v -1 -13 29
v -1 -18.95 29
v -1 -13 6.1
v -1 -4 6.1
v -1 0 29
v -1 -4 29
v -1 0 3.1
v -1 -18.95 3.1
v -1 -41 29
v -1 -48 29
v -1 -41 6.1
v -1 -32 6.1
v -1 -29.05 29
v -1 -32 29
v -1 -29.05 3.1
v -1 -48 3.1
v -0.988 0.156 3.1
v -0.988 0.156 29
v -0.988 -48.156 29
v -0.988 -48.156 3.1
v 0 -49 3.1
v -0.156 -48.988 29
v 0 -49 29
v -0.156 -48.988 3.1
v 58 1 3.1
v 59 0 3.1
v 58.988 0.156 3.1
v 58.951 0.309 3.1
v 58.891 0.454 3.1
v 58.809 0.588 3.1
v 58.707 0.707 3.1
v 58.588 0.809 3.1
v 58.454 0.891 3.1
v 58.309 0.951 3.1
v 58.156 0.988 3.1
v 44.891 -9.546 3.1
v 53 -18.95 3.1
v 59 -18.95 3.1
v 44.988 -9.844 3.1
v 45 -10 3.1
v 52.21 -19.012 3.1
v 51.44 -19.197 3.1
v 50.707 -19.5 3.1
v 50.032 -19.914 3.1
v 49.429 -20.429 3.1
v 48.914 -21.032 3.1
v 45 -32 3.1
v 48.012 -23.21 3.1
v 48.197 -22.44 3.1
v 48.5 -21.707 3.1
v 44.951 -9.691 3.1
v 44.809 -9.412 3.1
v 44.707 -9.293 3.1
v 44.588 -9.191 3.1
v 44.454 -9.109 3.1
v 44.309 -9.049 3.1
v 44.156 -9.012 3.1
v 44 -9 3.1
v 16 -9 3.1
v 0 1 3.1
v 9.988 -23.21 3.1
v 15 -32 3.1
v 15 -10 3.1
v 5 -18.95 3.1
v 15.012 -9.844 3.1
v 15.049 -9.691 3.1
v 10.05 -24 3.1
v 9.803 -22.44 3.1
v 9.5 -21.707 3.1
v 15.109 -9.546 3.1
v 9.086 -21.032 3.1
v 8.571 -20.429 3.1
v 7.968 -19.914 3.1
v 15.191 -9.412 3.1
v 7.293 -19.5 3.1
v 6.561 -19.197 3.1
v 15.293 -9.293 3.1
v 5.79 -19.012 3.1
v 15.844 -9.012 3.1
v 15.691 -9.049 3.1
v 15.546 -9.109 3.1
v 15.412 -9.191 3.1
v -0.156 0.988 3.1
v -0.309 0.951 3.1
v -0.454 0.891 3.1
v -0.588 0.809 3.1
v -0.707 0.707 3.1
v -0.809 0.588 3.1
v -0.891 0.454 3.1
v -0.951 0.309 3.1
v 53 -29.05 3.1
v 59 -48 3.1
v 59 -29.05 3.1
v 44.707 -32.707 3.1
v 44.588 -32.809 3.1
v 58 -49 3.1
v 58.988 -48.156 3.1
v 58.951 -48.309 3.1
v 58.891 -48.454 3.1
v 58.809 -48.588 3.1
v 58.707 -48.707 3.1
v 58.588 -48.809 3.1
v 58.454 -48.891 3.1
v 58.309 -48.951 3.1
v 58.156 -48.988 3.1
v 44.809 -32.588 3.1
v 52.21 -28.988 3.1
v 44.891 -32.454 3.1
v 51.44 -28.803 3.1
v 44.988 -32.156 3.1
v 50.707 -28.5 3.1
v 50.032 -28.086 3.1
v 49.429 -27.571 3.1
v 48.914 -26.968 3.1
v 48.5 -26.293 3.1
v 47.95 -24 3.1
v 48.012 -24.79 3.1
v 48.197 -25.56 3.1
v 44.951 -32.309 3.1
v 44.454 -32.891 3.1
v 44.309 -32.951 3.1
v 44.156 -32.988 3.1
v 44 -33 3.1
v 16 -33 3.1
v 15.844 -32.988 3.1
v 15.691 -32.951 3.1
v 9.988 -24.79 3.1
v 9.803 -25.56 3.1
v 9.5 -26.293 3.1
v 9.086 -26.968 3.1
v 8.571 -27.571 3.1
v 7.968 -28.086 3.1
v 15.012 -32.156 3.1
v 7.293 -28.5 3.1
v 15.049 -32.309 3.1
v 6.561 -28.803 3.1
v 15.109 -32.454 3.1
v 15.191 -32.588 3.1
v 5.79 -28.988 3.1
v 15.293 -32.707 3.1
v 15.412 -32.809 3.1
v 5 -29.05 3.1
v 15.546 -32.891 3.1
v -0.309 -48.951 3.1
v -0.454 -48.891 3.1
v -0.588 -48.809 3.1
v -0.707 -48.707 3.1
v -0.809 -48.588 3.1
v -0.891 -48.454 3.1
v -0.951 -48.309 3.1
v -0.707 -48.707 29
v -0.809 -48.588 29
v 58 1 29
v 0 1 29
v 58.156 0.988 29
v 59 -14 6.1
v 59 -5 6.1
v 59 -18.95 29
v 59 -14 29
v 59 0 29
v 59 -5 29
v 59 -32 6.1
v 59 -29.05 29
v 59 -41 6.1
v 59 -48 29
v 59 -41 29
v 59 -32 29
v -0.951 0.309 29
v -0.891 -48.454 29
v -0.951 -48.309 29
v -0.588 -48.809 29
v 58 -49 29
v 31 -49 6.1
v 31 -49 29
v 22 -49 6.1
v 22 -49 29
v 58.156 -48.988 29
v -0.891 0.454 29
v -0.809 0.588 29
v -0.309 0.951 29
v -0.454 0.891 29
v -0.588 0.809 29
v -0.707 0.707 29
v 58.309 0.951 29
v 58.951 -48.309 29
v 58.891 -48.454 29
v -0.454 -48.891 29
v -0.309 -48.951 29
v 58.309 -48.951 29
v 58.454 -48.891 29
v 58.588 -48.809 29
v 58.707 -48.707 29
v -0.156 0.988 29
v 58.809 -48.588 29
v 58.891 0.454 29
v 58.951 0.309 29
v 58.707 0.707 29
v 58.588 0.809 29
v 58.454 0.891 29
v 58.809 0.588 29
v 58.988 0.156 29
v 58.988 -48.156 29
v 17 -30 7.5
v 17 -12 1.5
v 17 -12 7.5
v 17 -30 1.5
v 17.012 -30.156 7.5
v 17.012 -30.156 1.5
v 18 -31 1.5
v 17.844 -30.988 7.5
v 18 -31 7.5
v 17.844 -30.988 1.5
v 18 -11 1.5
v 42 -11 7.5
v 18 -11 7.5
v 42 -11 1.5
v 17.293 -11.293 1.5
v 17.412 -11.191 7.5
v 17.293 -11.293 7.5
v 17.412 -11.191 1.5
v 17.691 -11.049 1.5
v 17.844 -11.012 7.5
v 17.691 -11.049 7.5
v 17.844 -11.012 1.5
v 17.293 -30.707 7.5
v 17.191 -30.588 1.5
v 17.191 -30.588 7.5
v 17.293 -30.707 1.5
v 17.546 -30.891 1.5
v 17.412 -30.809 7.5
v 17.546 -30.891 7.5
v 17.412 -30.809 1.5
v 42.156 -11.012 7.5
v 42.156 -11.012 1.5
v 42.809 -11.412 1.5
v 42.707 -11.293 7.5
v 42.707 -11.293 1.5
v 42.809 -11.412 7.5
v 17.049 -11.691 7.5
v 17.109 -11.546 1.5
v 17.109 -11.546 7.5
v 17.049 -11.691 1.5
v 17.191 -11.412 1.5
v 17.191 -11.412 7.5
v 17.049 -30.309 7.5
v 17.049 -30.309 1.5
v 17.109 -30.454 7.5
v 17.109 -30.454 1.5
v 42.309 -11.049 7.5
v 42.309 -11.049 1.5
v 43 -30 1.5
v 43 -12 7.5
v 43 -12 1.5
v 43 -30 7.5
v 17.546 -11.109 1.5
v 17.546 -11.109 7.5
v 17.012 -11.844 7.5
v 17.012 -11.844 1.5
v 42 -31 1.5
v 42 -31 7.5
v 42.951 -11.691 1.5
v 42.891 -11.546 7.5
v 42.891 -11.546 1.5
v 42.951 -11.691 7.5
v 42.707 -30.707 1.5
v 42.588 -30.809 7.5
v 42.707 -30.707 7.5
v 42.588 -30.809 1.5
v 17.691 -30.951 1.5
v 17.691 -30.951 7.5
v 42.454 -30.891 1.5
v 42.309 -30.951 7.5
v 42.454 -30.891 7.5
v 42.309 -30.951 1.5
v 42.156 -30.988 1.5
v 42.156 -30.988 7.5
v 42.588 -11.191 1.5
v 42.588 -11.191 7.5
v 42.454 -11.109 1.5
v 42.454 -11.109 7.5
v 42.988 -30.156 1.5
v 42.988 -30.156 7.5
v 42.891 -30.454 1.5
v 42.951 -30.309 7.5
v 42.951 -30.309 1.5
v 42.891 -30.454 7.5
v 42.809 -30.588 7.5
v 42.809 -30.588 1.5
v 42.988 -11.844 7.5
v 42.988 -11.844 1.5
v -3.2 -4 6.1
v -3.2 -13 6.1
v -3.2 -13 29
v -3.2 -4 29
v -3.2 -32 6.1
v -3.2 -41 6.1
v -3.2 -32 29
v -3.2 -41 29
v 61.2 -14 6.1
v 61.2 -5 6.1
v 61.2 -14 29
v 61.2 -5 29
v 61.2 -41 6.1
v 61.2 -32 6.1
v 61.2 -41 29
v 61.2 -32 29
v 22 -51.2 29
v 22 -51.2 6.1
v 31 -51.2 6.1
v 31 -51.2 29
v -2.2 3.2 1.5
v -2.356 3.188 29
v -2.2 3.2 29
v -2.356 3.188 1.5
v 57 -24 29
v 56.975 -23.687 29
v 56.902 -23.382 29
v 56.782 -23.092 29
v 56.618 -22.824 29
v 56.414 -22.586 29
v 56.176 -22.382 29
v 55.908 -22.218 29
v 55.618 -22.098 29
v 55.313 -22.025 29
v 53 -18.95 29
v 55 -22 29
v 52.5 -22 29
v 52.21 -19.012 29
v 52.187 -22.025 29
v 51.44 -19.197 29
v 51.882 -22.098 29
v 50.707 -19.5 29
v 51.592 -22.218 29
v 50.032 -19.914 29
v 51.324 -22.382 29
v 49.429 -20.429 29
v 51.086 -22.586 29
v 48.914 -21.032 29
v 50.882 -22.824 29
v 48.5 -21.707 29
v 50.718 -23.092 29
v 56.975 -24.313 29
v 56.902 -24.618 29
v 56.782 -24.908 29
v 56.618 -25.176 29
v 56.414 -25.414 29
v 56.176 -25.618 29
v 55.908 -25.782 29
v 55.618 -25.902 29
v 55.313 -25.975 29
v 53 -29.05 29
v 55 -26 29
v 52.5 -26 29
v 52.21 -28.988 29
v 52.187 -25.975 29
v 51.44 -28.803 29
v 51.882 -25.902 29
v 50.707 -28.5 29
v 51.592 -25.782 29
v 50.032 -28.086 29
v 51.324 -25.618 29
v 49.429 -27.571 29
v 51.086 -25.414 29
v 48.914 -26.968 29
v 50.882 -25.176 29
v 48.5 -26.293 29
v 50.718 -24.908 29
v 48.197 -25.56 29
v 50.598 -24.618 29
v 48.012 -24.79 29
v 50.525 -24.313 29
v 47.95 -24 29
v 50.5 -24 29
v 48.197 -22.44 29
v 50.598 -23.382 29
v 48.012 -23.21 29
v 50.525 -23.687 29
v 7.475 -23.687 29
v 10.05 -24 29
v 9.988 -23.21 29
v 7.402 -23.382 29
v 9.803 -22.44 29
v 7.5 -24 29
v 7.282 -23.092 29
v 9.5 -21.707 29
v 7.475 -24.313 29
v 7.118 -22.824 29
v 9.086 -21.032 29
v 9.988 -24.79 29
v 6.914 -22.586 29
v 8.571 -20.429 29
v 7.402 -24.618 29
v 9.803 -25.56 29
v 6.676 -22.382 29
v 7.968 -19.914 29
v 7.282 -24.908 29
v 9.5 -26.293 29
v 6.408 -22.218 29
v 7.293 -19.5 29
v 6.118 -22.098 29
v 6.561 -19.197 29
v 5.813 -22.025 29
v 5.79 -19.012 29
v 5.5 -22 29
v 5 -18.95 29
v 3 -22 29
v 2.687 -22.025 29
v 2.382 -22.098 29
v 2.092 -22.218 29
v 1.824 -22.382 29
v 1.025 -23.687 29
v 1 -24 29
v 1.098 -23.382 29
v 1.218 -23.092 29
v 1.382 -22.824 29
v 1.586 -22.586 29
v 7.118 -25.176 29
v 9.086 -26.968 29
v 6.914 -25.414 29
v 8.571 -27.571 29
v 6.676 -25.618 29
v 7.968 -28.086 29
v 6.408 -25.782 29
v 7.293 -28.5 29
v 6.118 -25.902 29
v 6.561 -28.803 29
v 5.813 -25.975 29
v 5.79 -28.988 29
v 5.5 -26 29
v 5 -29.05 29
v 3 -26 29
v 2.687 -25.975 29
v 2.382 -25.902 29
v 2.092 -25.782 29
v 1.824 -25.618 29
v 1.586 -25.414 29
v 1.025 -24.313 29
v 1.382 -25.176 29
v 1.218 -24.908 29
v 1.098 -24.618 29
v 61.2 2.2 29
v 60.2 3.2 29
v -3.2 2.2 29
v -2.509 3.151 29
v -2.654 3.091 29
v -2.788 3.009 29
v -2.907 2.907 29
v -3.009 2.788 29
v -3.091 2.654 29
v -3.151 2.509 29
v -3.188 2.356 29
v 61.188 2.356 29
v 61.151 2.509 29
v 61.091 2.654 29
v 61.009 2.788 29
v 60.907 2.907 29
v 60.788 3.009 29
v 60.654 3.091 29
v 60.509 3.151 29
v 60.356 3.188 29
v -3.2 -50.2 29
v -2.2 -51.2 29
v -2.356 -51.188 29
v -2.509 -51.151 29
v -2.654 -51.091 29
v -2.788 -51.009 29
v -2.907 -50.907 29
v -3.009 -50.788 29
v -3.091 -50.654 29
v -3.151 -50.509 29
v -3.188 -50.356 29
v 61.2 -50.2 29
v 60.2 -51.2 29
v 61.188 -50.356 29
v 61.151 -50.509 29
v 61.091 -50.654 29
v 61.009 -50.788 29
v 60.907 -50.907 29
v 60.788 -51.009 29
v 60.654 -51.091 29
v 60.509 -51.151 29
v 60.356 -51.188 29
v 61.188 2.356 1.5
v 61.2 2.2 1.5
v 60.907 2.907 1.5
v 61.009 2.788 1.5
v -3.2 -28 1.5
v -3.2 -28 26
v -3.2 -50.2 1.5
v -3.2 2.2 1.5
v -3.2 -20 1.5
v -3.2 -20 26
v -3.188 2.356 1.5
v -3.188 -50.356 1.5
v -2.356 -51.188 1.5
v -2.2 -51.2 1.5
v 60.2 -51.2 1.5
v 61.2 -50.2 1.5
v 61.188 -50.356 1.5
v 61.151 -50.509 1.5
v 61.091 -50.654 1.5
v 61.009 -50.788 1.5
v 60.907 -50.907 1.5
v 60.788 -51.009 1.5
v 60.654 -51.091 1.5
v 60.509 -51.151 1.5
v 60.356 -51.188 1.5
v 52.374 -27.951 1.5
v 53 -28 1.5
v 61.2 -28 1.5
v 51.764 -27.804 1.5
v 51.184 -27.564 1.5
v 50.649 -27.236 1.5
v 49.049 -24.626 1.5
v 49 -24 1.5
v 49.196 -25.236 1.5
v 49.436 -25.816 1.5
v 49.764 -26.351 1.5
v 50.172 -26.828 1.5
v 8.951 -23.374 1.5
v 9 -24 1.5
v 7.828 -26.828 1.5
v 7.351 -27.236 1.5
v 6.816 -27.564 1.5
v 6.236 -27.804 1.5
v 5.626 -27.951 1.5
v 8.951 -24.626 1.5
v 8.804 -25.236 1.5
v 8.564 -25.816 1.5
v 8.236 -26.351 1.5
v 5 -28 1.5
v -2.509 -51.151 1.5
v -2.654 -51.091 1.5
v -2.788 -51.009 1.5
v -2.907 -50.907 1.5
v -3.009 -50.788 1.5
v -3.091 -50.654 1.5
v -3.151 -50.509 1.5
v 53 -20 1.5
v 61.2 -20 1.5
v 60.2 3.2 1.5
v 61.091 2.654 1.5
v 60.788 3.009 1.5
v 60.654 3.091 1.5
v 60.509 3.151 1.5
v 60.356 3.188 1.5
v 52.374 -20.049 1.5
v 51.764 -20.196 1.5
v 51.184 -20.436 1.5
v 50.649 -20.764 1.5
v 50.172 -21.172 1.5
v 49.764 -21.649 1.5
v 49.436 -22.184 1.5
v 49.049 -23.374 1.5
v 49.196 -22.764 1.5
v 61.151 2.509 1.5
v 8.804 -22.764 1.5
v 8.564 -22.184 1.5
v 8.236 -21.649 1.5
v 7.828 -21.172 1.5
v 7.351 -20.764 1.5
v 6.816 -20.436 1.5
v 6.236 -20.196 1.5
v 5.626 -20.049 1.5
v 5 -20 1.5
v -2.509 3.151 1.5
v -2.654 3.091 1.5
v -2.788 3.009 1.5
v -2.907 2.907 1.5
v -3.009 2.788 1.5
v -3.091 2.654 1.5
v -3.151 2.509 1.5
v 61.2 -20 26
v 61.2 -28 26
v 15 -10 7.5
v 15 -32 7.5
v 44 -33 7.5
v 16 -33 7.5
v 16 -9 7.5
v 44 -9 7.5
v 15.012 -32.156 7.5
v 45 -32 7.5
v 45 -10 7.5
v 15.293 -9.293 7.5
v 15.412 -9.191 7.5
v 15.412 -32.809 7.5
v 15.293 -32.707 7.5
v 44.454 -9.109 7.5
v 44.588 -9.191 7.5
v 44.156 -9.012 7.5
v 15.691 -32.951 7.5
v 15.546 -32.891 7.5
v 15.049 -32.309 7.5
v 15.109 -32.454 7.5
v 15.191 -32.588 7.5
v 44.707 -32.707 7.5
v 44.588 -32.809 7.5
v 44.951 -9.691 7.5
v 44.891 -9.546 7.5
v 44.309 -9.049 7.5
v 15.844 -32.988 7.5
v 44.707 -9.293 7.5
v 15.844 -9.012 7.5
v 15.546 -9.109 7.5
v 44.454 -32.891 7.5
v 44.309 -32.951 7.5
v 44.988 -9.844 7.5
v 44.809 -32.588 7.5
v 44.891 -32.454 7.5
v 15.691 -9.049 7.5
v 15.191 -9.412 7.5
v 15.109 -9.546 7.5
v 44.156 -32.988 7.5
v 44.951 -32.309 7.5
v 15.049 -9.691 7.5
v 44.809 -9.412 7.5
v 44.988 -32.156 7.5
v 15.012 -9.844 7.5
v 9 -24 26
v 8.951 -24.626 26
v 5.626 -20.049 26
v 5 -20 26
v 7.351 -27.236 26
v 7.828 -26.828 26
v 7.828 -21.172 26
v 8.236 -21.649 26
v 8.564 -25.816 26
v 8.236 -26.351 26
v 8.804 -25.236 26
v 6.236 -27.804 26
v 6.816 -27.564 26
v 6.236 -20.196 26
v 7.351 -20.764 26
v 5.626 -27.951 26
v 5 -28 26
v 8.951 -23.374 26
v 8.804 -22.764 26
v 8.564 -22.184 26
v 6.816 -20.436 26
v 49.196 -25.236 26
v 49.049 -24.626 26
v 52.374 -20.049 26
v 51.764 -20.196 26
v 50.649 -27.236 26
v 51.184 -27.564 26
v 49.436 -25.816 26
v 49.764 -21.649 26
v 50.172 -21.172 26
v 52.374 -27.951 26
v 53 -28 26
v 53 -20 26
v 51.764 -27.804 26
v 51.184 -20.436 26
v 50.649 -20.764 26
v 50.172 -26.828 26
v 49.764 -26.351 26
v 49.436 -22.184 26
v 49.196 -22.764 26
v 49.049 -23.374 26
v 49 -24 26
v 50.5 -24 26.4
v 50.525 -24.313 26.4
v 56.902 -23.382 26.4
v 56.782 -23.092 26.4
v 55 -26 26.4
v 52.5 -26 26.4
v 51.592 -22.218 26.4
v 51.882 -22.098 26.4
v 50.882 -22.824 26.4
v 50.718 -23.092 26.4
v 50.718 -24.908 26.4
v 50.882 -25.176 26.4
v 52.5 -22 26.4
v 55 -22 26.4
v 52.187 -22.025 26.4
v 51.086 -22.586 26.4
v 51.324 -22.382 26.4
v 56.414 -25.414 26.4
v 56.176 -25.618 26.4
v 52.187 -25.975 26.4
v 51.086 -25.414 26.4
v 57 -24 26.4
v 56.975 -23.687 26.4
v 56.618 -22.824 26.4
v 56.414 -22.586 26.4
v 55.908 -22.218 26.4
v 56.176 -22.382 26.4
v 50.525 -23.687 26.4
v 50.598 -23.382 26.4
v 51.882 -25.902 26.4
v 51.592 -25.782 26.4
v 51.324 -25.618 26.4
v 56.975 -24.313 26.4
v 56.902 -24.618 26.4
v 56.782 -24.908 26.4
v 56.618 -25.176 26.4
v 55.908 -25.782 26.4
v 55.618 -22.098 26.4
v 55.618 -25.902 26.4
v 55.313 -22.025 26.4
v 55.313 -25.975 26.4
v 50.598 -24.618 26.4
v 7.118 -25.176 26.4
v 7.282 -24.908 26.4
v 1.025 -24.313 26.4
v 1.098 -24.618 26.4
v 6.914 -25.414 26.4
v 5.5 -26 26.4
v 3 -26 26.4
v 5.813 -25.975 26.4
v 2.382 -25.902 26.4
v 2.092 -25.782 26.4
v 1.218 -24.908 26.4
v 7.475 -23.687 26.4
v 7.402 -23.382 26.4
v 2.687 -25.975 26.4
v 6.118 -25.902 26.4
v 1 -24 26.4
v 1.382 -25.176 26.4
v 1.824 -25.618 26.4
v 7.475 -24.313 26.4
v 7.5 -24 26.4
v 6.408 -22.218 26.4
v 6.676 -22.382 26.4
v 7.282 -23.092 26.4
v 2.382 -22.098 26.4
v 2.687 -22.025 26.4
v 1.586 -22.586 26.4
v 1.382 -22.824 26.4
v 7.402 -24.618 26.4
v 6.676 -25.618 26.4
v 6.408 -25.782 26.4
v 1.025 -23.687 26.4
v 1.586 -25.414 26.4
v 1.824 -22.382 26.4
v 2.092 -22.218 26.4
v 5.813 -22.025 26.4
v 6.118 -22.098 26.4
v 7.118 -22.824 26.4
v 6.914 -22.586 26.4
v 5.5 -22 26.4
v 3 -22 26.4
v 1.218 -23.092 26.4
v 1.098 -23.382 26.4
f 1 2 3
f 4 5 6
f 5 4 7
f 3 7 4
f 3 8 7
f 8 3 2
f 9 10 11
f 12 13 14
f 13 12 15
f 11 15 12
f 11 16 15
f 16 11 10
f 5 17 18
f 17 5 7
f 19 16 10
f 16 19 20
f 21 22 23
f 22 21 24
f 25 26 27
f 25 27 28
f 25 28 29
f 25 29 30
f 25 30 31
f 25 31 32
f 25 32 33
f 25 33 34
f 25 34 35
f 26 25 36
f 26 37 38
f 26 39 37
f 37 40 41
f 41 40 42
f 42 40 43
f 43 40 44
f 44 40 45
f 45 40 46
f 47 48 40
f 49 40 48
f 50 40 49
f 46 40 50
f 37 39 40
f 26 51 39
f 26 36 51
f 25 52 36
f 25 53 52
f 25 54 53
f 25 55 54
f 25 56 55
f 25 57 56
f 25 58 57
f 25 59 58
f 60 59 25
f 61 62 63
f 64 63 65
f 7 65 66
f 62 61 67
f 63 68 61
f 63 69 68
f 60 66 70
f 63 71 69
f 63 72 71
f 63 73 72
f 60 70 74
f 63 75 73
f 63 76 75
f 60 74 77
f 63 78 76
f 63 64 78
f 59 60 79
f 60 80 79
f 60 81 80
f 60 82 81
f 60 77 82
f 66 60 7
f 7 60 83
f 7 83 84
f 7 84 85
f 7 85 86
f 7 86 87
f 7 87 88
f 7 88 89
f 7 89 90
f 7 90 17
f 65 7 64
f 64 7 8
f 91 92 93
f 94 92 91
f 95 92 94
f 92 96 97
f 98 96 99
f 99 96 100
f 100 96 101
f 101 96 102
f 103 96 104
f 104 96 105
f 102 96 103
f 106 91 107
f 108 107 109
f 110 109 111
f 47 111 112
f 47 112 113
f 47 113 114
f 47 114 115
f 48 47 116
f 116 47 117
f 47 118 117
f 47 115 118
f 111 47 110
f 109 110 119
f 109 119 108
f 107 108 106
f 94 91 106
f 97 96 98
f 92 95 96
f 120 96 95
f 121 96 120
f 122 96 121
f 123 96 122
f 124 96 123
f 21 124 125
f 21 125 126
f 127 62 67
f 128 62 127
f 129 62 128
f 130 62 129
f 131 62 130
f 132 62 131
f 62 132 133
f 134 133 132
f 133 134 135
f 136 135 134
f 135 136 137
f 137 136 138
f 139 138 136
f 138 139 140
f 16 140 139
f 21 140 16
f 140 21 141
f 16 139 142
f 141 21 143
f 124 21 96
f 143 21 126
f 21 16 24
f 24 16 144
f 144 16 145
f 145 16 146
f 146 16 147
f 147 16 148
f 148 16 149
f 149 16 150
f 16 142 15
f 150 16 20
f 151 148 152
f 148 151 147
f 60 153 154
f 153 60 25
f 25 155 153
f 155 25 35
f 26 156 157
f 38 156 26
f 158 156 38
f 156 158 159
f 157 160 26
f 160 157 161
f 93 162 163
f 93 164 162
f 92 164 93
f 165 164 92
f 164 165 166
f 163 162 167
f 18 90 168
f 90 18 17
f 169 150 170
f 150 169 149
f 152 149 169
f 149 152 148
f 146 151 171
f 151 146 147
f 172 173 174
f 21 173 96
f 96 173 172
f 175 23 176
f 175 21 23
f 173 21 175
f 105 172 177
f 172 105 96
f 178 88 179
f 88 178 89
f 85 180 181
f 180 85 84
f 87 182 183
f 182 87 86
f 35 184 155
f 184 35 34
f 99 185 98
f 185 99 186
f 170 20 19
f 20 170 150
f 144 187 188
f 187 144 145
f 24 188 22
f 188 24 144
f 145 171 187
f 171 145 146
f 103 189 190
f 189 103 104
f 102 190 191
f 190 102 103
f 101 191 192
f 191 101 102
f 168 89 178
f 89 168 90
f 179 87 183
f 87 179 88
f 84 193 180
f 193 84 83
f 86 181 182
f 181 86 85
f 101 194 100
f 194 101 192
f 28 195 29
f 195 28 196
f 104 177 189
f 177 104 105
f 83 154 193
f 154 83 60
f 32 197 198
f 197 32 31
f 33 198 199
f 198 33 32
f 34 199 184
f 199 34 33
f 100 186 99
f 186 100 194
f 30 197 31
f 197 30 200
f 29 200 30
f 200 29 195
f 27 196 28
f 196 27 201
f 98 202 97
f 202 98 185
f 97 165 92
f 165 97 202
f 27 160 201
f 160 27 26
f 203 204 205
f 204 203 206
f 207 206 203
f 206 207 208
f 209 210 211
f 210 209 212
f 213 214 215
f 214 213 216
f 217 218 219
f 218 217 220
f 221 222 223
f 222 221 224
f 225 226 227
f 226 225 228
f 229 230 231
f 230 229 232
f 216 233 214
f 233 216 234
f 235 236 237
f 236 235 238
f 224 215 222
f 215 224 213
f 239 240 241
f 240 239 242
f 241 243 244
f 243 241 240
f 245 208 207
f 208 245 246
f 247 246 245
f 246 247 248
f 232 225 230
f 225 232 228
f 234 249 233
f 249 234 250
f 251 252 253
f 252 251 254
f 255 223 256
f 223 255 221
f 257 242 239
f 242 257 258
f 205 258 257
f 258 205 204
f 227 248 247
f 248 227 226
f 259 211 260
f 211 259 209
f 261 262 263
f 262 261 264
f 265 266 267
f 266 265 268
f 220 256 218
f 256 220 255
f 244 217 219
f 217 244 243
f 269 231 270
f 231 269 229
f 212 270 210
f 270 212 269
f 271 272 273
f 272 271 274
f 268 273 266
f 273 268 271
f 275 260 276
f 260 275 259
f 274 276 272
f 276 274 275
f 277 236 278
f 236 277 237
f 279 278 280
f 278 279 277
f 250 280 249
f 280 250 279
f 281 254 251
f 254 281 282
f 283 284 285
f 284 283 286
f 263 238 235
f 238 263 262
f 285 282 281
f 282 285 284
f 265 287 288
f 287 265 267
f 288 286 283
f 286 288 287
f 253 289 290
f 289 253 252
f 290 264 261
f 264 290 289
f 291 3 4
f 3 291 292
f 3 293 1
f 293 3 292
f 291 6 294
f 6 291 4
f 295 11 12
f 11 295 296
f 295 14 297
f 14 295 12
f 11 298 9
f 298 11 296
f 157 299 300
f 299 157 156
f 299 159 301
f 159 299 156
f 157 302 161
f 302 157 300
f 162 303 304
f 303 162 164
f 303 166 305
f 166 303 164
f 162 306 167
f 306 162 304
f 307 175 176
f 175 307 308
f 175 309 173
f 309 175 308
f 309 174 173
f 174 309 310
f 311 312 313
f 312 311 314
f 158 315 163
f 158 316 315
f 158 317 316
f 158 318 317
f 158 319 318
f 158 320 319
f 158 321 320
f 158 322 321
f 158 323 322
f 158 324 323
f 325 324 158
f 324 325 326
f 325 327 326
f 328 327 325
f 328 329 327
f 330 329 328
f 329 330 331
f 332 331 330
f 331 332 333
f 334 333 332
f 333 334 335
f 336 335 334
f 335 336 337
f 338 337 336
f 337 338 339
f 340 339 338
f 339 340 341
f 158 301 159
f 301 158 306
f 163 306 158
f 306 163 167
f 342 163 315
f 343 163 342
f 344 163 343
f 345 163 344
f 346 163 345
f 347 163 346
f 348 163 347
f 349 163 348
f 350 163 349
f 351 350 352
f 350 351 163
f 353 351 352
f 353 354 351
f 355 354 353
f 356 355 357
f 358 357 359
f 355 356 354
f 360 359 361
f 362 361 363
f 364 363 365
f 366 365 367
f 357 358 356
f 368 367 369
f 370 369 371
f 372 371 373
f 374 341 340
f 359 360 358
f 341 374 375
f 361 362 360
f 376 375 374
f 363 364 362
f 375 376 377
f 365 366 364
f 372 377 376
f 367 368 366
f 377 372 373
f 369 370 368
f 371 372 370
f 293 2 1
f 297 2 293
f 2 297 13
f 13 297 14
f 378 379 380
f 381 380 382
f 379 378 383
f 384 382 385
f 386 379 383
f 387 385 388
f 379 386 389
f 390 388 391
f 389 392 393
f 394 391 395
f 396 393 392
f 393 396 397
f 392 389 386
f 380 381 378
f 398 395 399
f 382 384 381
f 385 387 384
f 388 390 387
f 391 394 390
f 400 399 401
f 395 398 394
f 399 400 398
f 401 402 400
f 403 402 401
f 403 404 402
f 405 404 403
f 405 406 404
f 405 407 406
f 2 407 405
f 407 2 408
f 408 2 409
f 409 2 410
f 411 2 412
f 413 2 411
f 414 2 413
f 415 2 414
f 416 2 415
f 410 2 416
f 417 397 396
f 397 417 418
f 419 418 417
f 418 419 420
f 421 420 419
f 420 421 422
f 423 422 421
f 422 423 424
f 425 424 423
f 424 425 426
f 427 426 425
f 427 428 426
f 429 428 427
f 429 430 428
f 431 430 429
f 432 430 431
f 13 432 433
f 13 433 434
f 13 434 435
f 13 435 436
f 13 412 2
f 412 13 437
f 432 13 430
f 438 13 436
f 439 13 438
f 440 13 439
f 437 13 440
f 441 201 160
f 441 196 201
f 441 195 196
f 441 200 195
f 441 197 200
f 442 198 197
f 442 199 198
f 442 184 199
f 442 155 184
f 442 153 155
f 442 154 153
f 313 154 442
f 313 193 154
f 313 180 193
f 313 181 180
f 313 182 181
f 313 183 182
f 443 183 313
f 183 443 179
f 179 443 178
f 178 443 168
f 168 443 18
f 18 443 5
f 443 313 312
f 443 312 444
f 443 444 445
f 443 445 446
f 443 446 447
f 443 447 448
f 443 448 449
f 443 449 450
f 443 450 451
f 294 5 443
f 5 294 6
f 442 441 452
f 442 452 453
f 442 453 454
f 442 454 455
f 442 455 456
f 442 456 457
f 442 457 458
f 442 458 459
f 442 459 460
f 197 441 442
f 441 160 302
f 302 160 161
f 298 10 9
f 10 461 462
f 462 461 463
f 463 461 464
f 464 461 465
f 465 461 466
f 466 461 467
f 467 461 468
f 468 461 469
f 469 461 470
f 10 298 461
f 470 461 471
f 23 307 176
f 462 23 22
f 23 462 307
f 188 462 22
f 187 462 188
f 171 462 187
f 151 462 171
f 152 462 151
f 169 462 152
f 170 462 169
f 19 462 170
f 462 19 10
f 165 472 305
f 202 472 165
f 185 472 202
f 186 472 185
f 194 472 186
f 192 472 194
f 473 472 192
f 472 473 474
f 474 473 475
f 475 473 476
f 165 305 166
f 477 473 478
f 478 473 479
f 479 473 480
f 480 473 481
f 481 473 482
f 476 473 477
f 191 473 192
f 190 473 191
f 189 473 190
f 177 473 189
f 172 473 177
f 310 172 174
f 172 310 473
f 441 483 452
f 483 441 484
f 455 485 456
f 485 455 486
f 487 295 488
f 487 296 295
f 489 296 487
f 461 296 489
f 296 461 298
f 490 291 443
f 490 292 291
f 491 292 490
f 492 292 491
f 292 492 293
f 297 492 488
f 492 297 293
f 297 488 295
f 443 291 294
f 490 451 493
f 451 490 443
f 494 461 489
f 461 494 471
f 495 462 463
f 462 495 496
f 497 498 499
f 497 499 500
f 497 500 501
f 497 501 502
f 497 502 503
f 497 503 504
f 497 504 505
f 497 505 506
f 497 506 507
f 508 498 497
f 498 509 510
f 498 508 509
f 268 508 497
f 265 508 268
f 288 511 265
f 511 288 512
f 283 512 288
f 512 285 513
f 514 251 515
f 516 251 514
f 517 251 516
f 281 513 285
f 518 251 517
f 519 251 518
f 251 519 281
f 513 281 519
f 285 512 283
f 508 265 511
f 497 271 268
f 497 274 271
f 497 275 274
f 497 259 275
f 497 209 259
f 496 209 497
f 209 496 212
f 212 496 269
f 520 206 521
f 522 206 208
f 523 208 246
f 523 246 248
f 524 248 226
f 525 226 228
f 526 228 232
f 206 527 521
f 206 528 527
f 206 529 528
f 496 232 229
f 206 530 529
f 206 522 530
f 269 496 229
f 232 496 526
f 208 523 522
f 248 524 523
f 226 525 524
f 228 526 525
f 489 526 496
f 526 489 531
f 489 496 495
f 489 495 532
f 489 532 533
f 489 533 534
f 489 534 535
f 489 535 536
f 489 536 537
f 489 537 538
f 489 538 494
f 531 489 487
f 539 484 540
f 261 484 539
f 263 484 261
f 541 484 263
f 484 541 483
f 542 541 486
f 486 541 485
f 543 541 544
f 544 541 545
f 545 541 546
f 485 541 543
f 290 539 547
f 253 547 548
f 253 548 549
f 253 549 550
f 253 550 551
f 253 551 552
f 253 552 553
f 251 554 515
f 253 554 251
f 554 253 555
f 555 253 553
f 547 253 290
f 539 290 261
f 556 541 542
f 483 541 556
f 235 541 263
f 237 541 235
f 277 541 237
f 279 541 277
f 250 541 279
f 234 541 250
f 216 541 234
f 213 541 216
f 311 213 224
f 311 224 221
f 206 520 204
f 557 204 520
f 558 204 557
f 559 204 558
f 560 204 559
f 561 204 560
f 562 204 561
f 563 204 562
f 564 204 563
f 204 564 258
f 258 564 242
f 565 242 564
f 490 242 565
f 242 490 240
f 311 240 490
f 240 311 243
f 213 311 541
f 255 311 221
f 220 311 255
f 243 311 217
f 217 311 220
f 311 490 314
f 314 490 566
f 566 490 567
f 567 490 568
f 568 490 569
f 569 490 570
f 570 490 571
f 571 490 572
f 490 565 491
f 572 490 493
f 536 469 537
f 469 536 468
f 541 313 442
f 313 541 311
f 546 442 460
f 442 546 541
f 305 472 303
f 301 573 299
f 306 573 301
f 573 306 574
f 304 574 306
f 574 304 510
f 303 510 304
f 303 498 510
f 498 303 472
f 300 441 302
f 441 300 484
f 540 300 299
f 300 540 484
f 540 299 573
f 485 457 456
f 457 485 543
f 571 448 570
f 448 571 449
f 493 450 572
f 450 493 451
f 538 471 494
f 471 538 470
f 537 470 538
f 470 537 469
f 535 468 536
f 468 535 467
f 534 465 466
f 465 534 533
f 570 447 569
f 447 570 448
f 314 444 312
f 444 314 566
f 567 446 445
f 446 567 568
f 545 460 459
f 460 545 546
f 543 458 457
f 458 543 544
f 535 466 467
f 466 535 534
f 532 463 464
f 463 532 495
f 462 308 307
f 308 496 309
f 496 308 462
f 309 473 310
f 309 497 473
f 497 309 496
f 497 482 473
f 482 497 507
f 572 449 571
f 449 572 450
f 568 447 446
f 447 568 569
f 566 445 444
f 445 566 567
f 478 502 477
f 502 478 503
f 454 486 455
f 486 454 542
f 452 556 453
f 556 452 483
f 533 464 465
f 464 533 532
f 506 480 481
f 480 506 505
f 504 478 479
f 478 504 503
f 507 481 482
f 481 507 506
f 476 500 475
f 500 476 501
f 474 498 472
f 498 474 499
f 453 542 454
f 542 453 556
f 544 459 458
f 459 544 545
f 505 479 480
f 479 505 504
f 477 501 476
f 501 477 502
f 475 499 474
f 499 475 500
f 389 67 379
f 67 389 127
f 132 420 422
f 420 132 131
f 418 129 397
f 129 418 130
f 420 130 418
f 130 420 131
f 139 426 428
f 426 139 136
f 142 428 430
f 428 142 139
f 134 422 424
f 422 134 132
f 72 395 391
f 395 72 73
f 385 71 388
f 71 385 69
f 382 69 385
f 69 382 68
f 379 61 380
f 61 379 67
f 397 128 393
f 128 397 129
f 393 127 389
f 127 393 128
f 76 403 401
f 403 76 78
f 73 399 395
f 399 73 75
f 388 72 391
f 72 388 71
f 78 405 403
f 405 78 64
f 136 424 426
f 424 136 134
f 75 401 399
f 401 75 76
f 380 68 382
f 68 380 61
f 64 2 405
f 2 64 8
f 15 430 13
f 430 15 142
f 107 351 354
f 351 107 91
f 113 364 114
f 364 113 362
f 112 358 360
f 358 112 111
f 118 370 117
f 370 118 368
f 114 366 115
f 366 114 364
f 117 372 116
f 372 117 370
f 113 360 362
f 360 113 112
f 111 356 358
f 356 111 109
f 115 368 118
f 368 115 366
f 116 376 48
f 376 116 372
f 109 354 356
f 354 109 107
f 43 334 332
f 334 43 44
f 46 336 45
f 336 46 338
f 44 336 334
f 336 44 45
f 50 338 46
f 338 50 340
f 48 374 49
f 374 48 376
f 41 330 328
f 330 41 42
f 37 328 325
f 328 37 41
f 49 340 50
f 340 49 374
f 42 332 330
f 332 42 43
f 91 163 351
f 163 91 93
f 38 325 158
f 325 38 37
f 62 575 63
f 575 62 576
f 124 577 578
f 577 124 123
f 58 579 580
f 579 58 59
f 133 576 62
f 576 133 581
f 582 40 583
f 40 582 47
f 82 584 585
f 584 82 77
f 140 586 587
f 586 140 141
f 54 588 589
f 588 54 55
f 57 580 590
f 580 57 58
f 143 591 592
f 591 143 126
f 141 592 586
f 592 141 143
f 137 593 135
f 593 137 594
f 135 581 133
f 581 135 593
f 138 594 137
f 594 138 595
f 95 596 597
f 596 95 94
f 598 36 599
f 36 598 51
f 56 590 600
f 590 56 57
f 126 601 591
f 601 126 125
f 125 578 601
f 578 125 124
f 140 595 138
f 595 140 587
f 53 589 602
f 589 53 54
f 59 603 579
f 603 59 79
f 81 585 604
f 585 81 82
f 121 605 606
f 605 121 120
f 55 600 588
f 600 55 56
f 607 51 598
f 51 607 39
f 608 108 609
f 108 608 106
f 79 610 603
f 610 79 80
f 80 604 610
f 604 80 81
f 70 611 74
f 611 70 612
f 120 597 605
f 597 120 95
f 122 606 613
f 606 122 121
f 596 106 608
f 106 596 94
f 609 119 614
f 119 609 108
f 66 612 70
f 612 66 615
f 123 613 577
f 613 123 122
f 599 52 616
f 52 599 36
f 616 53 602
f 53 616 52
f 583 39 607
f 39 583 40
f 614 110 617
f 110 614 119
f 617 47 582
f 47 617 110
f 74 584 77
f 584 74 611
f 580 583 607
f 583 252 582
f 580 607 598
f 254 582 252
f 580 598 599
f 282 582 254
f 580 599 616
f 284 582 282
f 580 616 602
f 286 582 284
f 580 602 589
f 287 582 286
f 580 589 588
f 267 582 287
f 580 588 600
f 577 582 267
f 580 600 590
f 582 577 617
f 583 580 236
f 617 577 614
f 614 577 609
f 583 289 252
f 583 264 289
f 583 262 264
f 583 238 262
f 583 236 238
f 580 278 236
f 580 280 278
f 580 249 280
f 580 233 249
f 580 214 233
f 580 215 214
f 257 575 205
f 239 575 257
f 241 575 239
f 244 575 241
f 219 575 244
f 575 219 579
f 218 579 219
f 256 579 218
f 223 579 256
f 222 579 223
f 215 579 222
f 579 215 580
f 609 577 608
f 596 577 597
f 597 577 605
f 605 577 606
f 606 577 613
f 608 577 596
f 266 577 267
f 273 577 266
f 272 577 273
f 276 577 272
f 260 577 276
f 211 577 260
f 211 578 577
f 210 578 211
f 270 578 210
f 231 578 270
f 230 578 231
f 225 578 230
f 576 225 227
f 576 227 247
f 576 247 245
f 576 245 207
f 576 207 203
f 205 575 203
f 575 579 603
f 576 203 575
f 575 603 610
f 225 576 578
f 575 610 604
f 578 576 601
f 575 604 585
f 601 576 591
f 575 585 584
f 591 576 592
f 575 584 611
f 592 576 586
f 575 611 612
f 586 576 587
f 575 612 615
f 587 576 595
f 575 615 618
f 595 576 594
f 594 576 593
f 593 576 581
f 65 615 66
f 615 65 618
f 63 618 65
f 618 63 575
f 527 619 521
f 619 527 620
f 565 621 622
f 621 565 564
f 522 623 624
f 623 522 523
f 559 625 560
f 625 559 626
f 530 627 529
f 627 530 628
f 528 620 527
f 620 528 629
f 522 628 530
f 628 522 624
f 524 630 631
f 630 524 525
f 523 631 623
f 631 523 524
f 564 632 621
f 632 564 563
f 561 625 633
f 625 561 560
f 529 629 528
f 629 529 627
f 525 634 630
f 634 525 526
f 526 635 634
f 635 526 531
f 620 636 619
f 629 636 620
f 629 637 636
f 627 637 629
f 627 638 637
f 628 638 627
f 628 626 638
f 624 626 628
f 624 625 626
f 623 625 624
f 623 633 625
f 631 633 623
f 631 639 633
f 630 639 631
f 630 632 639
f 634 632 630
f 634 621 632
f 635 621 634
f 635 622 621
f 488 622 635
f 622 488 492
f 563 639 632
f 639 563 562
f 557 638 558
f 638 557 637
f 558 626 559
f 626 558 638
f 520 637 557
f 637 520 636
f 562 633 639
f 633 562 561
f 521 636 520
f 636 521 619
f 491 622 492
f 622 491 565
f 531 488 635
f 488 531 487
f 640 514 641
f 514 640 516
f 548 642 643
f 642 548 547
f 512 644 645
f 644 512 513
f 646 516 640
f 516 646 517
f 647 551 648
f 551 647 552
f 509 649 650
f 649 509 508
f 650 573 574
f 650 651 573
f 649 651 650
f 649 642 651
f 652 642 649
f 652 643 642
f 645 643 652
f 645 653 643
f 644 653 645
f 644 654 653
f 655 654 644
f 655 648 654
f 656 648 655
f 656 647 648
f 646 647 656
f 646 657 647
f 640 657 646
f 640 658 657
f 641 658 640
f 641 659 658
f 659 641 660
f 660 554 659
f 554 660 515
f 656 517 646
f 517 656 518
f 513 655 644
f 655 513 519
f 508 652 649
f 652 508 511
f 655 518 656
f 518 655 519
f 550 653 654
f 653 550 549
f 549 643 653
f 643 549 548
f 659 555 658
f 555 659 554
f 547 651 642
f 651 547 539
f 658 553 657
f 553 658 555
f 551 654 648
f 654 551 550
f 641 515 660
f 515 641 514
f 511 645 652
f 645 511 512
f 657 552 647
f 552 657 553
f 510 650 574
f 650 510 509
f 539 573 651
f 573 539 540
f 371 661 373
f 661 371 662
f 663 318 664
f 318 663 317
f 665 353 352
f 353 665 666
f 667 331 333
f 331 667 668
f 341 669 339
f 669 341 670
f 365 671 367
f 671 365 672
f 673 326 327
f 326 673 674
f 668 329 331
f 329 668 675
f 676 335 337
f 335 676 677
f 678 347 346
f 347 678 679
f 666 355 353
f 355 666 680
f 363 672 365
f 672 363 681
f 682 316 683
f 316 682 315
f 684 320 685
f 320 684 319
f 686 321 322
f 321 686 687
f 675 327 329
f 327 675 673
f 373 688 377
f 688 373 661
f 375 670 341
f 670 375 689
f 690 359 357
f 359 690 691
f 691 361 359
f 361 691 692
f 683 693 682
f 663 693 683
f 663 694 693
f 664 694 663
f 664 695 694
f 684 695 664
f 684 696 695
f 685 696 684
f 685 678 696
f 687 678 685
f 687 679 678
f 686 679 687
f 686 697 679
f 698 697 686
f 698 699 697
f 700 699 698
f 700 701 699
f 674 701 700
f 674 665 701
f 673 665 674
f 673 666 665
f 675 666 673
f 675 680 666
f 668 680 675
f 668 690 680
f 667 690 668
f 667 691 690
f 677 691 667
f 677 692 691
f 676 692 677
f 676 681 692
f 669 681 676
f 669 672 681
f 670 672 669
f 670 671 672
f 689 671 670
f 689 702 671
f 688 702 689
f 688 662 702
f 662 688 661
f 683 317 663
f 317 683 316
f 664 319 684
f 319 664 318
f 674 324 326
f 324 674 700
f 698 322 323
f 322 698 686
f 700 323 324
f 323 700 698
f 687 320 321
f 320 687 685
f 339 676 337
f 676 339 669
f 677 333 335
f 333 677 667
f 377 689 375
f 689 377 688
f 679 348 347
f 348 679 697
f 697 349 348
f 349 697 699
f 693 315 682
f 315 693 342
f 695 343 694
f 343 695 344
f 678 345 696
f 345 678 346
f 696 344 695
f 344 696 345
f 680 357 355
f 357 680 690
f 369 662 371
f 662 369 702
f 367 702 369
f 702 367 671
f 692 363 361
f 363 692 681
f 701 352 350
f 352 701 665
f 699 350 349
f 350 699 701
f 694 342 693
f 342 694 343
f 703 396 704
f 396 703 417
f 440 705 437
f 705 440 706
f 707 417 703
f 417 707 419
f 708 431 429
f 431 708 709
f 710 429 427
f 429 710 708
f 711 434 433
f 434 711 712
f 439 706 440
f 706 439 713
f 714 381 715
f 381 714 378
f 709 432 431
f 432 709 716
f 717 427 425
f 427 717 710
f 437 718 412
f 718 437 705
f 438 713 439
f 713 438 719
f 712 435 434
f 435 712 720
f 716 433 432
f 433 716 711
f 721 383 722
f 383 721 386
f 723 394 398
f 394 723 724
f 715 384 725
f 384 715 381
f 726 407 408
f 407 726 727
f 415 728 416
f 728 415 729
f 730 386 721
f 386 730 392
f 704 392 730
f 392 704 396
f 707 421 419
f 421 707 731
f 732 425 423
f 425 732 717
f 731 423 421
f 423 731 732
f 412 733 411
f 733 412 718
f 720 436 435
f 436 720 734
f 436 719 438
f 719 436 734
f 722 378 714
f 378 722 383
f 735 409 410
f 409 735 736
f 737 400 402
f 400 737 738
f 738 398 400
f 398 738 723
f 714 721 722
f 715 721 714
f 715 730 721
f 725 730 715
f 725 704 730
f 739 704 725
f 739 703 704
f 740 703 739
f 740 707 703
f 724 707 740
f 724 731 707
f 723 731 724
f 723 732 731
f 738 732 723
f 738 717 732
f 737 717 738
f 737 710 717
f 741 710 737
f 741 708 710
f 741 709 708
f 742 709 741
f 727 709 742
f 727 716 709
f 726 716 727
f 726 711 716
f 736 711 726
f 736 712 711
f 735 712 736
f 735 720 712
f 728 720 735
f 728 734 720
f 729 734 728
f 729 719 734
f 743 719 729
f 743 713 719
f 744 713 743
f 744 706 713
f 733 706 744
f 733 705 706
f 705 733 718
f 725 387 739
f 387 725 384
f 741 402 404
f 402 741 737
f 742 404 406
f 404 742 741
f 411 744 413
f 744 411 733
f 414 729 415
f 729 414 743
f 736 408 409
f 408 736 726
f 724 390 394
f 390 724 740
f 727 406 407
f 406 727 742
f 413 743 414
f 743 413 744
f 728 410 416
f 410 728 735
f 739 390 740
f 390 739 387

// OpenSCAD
$fn=40;

translate([0,0,29]) rotate([180,0,0]) cover();

module cover() {
   difference() {
      union() {
         difference() {
            outside();
            translate([0,0,-0.1]) inside();
         }
         mounts();

         // add back in a little edge around the inside opening
         if (1) difference() {
            hull() {
               translate([16,10,21.5]) cylinder(r=1,h=6);
               translate([16,32,21.5]) cylinder(r=1,h=6);
               translate([44,10,21.5]) cylinder(r=1,h=6);
               translate([44,32,21.5]) cylinder(r=1,h=6);
            }
            hull() {
               translate([18,12,0]) cylinder(r=1,h=40);
               translate([18,30,0]) cylinder(r=1,h=40);
               translate([42,12,0]) cylinder(r=1,h=40);
               translate([42,30,0]) cylinder(r=1,h=40);
            }
         }
      }
      moreCutouts();
   }
}

module moreCutouts() {
   translate([5,48/2,3]) cylinder(d=8,h=33);
   translate([-3.2,48/2-5+1,3]) cube([8.2,8,33]);
   translate([58-5,48/2,3]) cylinder(d=8,h=33);
   translate([58-5,48/2-5+1,3]) cube([8.2,8,33]);

   hull() {
      translate([58-5.5,48/2,-0.1]) cylinder(d=4,h=2.7);
      translate([58-3,48/2,-0.1]) cylinder(d=4,h=2.7);
   }
   hull() {
      translate([5.5,48/2,-0.1]) cylinder(d=4,h=2.7);
      translate([3,48/2,-0.1]) cylinder(d=4,h=2.7);
   }
}

// these are the bits on the ends for screws
module mounts(ht=27.5) {
   difference() {
      union() {
         translate([5,48/2,0]) cylinder(d=10.1,h=ht);
         translate([-2,48/2-5.05,0]) cube([7,10.1,ht]);
         translate([58-5,48/2,0]) cylinder(d=10.1,h=ht);
         translate([58-5,48/2-5.05,0]) cube([7,10.1,ht]);
      }
   }
}

// rough outside form
module outside(ht=27.5) {
   translate([-2.2,-2.2,0]) hull() {
      cylinder(r=1,h=ht);
      translate([62.4,52.4,0]) cylinder(r=1,h=ht);
      translate([0,52.4,0]) cylinder(r=1,h=ht);
      translate([62.4,0,0]) cylinder(r=1,h=ht);
   }
}

// rough inside form, with openings for wiring
module inside(ht=26) {
   hull() {
      cylinder(r=1,h=ht);
      translate([58,48,0]) cylinder(r=1,h=ht);
      translate([0,48,0]) cylinder(r=1,h=ht);
      translate([58,0,0]) cylinder(r=1,h=ht);
   }

   hull() {
      translate([18,12,0]) cylinder(r=1,h=40);
      translate([18,30,0]) cylinder(r=1,h=40);
      translate([42,12,0]) cylinder(r=1,h=40);
      translate([42,30,0]) cylinder(r=1,h=40);
   }

   // openings for wiring
   translate([-4,4,-1.5]) cube([10,9,ht-1.5]);
   translate([-4,32,-1.5]) cube([10,9,ht-1.5]);
   translate([55,5,-1.5]) cube([10,9,ht-1.5]);
   translate([55,32,-1.5]) cube([10,9,ht-1.5]);
   translate([22,45,-1.5]) cube([9,10,ht-1.5]);
}
